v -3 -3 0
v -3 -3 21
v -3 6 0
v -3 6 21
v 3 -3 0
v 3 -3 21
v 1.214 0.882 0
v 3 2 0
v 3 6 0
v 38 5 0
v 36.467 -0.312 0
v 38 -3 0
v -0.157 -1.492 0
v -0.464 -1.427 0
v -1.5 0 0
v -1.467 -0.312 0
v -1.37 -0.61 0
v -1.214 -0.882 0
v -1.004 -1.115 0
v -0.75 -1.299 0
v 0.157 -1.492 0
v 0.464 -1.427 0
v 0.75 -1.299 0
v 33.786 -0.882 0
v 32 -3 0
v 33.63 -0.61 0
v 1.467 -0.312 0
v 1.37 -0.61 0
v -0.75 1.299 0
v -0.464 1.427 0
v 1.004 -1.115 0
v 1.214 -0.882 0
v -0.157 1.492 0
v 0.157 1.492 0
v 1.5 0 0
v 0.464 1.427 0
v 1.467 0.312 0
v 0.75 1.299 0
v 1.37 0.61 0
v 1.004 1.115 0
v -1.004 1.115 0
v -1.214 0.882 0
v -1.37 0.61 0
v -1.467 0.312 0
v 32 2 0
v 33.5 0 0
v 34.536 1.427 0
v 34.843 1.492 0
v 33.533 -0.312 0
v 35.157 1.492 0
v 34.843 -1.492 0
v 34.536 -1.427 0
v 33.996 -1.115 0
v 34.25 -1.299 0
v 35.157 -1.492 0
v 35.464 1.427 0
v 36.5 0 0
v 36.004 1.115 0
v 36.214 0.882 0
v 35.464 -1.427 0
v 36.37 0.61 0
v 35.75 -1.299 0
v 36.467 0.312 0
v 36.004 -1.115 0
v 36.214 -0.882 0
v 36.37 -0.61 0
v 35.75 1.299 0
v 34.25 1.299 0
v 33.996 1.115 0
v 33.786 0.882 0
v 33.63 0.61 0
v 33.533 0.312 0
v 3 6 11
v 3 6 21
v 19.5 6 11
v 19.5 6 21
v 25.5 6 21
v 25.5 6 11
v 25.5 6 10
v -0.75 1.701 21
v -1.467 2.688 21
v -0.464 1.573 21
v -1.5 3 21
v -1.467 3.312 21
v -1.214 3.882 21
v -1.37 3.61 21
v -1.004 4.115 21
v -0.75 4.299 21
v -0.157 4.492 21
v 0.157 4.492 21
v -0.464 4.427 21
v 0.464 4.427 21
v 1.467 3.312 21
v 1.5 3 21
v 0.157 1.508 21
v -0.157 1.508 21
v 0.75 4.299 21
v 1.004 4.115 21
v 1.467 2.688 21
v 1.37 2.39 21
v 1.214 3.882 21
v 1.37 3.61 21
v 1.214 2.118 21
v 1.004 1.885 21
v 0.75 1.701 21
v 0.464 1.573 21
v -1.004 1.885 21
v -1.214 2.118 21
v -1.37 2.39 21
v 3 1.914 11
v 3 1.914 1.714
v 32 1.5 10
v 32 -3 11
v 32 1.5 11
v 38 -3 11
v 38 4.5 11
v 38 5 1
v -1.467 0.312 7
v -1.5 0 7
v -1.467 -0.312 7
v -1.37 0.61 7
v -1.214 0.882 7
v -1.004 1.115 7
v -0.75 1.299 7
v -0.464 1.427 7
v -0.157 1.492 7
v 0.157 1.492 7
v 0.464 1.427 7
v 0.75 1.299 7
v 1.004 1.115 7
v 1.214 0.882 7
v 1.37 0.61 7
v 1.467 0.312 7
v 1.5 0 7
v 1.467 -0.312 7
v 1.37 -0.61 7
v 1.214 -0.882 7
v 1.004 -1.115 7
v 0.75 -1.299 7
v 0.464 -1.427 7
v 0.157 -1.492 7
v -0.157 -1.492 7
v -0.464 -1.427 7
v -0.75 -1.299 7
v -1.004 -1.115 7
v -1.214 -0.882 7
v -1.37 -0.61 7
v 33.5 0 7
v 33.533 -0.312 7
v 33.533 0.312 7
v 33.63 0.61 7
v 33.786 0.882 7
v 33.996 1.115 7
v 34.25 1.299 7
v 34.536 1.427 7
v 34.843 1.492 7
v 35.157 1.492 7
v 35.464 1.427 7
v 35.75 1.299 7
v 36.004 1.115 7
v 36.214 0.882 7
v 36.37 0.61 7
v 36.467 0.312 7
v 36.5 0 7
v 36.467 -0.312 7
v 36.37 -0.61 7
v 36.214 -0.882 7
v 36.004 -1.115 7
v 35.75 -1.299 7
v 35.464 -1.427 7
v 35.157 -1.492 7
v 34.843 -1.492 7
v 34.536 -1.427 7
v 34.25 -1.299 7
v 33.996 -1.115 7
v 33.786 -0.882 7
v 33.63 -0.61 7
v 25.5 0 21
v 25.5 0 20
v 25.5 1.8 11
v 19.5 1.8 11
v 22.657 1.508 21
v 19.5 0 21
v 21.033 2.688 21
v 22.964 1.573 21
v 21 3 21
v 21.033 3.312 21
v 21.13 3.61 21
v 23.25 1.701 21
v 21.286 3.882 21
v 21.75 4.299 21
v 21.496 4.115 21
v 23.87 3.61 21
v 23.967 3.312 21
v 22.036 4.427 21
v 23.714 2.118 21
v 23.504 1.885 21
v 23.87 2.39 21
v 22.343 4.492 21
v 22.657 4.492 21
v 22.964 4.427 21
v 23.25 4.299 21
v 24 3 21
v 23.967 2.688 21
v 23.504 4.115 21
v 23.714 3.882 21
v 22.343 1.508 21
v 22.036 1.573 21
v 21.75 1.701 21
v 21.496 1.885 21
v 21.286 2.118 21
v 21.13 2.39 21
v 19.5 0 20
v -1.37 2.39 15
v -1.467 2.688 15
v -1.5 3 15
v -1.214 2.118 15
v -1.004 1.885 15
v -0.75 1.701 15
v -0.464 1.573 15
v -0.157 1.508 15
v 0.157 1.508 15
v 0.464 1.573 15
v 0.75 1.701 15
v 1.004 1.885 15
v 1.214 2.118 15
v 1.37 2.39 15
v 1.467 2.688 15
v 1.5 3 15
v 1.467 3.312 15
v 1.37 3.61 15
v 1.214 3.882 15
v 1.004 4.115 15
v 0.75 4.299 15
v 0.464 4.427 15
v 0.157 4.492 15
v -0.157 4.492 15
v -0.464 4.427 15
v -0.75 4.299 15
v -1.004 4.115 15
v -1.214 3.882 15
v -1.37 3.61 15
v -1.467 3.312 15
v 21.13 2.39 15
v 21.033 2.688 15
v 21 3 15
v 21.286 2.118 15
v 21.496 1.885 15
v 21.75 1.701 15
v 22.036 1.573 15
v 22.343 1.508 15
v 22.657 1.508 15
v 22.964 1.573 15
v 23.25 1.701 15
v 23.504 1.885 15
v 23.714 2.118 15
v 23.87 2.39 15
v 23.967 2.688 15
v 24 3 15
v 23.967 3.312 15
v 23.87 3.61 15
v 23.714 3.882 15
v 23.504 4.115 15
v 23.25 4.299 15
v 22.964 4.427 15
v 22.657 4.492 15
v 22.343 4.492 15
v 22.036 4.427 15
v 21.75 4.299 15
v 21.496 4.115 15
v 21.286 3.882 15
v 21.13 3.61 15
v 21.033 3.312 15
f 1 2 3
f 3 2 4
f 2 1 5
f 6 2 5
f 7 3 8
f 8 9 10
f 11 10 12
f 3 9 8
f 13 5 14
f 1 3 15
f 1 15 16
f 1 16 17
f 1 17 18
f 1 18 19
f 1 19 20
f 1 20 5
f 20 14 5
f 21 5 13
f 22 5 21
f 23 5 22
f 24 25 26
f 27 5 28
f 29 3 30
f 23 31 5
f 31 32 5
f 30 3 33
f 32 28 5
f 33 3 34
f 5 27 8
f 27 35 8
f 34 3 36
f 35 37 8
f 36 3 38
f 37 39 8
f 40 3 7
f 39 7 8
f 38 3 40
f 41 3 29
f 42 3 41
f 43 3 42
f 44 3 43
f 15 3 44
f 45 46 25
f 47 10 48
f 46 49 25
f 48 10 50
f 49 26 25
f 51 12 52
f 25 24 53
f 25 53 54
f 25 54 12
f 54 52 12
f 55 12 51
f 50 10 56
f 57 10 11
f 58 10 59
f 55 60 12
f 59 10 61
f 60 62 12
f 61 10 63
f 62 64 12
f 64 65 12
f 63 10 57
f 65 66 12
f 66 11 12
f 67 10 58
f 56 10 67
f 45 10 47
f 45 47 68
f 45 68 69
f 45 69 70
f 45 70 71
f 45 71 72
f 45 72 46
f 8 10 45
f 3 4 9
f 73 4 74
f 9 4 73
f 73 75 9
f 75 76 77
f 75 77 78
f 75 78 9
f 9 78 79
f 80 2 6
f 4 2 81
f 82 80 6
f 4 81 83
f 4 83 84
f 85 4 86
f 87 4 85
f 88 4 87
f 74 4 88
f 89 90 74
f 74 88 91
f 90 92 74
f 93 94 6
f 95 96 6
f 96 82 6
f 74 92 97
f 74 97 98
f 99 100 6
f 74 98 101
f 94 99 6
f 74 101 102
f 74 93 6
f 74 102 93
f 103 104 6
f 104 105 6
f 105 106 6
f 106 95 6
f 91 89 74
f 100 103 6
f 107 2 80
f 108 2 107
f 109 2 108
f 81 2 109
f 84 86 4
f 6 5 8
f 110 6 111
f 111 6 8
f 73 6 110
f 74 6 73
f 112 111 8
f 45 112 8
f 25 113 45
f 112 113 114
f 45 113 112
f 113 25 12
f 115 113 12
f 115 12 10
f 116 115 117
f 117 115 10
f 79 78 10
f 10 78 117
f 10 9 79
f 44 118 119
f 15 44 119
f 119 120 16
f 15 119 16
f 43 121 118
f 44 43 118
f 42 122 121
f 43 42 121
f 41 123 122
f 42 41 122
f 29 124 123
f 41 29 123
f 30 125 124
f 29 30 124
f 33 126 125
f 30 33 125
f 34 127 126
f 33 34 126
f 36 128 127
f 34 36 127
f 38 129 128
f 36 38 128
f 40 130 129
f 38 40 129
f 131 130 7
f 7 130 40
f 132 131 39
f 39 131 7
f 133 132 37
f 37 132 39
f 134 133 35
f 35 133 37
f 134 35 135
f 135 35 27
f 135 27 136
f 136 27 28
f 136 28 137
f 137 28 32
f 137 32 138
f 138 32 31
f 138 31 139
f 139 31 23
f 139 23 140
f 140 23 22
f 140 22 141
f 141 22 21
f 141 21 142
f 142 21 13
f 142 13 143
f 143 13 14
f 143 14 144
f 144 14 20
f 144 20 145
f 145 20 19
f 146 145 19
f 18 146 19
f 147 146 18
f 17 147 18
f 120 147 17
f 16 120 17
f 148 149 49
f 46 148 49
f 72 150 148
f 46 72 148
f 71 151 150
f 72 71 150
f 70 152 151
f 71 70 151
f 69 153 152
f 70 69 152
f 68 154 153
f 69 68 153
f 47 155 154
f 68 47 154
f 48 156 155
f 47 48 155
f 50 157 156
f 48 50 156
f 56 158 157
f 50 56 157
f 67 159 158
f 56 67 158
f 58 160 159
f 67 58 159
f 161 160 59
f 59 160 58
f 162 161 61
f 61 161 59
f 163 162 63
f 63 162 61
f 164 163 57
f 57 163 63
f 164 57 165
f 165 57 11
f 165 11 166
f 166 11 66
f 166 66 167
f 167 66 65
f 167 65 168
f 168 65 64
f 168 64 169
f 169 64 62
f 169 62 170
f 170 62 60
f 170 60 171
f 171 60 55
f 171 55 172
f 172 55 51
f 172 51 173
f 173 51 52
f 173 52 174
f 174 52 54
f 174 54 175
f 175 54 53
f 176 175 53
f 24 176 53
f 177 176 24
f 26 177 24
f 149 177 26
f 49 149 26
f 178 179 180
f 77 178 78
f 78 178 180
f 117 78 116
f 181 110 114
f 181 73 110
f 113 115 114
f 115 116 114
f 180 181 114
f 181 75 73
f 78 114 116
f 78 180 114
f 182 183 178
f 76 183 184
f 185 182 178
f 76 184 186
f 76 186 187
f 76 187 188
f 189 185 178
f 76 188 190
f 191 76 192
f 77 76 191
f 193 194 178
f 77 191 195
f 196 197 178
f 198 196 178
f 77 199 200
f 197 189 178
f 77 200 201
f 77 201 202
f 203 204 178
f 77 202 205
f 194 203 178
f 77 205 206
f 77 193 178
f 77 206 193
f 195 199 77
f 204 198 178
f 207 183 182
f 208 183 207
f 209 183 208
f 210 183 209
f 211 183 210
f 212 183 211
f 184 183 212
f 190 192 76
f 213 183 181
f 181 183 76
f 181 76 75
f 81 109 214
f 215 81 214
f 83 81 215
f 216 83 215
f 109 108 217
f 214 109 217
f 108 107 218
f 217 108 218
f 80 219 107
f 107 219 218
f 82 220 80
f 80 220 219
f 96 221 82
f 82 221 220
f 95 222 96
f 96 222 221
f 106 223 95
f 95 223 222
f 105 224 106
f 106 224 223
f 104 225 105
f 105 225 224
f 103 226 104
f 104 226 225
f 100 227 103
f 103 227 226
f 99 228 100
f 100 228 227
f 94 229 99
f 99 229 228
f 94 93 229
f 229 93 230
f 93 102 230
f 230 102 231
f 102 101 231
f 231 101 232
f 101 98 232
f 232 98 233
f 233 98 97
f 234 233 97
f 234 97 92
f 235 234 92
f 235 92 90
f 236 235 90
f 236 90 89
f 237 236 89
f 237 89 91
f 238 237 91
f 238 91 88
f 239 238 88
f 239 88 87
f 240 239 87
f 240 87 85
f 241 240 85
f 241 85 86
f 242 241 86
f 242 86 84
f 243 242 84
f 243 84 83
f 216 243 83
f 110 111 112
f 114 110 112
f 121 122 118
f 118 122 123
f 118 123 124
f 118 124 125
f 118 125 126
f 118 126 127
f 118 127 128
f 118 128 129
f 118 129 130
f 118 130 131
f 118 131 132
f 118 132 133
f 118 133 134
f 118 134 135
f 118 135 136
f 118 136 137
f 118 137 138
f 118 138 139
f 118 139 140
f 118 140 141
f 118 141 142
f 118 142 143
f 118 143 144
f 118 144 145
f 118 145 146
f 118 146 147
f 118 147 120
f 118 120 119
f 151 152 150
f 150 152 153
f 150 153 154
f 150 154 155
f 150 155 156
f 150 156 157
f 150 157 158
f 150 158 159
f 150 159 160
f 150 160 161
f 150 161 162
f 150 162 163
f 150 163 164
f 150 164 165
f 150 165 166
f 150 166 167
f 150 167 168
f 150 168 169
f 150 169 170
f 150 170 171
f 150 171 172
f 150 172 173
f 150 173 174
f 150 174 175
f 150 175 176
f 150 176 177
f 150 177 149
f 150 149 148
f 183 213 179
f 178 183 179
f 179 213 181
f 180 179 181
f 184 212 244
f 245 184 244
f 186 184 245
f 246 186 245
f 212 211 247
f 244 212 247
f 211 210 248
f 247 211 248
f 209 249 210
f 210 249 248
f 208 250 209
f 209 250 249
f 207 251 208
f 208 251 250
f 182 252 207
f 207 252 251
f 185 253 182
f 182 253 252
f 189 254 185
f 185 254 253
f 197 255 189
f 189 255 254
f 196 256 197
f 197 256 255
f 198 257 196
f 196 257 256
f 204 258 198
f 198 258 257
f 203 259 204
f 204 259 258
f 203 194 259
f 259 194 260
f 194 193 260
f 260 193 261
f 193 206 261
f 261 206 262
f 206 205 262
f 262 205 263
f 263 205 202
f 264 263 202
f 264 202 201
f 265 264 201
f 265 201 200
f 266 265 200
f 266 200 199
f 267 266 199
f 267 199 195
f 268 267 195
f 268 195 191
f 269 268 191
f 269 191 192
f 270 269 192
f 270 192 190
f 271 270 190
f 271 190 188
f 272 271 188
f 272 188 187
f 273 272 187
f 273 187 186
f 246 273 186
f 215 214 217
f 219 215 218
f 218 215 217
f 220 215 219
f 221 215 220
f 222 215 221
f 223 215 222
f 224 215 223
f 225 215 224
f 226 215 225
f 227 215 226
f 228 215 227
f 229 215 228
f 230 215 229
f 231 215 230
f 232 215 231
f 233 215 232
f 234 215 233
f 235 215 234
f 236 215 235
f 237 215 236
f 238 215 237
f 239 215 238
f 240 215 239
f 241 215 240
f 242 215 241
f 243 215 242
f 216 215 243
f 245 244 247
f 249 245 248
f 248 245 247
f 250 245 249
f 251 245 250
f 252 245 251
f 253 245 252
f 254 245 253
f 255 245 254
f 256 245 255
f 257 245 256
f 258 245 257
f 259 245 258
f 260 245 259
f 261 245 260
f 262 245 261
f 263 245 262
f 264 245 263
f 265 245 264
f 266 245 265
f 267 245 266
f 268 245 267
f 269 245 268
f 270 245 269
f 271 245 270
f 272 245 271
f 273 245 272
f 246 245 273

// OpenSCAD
$fn = 30;
difference()
{
union()
{
translate([-3,-3,0]) cube([6,9,21]);
hull()
{
translate([-3,2,0]) cube([6,4,1]);
translate([-3,2,10]) cube([28.5,4,1]);
translate([-3-6+41,2,0]) cube([6,3,1]);
translate([-3+35,1.5,10]) cube([6,3,1]);
}
translate([-3+35,-3,0]) cube([6,6,11]);
hull()
{
translate([-3+22.5,-3+3,20]) cube([6,6,1]);
translate([-3+22.5,-1+3,10]) cube([6,4,11]);
}
}

translate([0,0,-1]) cylinder(8,3/2,3/2);
translate([35,0,-1]) cylinder(8,3/2,3/2);
translate([0,3,15]) cylinder(12,3/2,3/2);
translate([22.5,3,15]) cylinder(12,3/2,3/2);
}
